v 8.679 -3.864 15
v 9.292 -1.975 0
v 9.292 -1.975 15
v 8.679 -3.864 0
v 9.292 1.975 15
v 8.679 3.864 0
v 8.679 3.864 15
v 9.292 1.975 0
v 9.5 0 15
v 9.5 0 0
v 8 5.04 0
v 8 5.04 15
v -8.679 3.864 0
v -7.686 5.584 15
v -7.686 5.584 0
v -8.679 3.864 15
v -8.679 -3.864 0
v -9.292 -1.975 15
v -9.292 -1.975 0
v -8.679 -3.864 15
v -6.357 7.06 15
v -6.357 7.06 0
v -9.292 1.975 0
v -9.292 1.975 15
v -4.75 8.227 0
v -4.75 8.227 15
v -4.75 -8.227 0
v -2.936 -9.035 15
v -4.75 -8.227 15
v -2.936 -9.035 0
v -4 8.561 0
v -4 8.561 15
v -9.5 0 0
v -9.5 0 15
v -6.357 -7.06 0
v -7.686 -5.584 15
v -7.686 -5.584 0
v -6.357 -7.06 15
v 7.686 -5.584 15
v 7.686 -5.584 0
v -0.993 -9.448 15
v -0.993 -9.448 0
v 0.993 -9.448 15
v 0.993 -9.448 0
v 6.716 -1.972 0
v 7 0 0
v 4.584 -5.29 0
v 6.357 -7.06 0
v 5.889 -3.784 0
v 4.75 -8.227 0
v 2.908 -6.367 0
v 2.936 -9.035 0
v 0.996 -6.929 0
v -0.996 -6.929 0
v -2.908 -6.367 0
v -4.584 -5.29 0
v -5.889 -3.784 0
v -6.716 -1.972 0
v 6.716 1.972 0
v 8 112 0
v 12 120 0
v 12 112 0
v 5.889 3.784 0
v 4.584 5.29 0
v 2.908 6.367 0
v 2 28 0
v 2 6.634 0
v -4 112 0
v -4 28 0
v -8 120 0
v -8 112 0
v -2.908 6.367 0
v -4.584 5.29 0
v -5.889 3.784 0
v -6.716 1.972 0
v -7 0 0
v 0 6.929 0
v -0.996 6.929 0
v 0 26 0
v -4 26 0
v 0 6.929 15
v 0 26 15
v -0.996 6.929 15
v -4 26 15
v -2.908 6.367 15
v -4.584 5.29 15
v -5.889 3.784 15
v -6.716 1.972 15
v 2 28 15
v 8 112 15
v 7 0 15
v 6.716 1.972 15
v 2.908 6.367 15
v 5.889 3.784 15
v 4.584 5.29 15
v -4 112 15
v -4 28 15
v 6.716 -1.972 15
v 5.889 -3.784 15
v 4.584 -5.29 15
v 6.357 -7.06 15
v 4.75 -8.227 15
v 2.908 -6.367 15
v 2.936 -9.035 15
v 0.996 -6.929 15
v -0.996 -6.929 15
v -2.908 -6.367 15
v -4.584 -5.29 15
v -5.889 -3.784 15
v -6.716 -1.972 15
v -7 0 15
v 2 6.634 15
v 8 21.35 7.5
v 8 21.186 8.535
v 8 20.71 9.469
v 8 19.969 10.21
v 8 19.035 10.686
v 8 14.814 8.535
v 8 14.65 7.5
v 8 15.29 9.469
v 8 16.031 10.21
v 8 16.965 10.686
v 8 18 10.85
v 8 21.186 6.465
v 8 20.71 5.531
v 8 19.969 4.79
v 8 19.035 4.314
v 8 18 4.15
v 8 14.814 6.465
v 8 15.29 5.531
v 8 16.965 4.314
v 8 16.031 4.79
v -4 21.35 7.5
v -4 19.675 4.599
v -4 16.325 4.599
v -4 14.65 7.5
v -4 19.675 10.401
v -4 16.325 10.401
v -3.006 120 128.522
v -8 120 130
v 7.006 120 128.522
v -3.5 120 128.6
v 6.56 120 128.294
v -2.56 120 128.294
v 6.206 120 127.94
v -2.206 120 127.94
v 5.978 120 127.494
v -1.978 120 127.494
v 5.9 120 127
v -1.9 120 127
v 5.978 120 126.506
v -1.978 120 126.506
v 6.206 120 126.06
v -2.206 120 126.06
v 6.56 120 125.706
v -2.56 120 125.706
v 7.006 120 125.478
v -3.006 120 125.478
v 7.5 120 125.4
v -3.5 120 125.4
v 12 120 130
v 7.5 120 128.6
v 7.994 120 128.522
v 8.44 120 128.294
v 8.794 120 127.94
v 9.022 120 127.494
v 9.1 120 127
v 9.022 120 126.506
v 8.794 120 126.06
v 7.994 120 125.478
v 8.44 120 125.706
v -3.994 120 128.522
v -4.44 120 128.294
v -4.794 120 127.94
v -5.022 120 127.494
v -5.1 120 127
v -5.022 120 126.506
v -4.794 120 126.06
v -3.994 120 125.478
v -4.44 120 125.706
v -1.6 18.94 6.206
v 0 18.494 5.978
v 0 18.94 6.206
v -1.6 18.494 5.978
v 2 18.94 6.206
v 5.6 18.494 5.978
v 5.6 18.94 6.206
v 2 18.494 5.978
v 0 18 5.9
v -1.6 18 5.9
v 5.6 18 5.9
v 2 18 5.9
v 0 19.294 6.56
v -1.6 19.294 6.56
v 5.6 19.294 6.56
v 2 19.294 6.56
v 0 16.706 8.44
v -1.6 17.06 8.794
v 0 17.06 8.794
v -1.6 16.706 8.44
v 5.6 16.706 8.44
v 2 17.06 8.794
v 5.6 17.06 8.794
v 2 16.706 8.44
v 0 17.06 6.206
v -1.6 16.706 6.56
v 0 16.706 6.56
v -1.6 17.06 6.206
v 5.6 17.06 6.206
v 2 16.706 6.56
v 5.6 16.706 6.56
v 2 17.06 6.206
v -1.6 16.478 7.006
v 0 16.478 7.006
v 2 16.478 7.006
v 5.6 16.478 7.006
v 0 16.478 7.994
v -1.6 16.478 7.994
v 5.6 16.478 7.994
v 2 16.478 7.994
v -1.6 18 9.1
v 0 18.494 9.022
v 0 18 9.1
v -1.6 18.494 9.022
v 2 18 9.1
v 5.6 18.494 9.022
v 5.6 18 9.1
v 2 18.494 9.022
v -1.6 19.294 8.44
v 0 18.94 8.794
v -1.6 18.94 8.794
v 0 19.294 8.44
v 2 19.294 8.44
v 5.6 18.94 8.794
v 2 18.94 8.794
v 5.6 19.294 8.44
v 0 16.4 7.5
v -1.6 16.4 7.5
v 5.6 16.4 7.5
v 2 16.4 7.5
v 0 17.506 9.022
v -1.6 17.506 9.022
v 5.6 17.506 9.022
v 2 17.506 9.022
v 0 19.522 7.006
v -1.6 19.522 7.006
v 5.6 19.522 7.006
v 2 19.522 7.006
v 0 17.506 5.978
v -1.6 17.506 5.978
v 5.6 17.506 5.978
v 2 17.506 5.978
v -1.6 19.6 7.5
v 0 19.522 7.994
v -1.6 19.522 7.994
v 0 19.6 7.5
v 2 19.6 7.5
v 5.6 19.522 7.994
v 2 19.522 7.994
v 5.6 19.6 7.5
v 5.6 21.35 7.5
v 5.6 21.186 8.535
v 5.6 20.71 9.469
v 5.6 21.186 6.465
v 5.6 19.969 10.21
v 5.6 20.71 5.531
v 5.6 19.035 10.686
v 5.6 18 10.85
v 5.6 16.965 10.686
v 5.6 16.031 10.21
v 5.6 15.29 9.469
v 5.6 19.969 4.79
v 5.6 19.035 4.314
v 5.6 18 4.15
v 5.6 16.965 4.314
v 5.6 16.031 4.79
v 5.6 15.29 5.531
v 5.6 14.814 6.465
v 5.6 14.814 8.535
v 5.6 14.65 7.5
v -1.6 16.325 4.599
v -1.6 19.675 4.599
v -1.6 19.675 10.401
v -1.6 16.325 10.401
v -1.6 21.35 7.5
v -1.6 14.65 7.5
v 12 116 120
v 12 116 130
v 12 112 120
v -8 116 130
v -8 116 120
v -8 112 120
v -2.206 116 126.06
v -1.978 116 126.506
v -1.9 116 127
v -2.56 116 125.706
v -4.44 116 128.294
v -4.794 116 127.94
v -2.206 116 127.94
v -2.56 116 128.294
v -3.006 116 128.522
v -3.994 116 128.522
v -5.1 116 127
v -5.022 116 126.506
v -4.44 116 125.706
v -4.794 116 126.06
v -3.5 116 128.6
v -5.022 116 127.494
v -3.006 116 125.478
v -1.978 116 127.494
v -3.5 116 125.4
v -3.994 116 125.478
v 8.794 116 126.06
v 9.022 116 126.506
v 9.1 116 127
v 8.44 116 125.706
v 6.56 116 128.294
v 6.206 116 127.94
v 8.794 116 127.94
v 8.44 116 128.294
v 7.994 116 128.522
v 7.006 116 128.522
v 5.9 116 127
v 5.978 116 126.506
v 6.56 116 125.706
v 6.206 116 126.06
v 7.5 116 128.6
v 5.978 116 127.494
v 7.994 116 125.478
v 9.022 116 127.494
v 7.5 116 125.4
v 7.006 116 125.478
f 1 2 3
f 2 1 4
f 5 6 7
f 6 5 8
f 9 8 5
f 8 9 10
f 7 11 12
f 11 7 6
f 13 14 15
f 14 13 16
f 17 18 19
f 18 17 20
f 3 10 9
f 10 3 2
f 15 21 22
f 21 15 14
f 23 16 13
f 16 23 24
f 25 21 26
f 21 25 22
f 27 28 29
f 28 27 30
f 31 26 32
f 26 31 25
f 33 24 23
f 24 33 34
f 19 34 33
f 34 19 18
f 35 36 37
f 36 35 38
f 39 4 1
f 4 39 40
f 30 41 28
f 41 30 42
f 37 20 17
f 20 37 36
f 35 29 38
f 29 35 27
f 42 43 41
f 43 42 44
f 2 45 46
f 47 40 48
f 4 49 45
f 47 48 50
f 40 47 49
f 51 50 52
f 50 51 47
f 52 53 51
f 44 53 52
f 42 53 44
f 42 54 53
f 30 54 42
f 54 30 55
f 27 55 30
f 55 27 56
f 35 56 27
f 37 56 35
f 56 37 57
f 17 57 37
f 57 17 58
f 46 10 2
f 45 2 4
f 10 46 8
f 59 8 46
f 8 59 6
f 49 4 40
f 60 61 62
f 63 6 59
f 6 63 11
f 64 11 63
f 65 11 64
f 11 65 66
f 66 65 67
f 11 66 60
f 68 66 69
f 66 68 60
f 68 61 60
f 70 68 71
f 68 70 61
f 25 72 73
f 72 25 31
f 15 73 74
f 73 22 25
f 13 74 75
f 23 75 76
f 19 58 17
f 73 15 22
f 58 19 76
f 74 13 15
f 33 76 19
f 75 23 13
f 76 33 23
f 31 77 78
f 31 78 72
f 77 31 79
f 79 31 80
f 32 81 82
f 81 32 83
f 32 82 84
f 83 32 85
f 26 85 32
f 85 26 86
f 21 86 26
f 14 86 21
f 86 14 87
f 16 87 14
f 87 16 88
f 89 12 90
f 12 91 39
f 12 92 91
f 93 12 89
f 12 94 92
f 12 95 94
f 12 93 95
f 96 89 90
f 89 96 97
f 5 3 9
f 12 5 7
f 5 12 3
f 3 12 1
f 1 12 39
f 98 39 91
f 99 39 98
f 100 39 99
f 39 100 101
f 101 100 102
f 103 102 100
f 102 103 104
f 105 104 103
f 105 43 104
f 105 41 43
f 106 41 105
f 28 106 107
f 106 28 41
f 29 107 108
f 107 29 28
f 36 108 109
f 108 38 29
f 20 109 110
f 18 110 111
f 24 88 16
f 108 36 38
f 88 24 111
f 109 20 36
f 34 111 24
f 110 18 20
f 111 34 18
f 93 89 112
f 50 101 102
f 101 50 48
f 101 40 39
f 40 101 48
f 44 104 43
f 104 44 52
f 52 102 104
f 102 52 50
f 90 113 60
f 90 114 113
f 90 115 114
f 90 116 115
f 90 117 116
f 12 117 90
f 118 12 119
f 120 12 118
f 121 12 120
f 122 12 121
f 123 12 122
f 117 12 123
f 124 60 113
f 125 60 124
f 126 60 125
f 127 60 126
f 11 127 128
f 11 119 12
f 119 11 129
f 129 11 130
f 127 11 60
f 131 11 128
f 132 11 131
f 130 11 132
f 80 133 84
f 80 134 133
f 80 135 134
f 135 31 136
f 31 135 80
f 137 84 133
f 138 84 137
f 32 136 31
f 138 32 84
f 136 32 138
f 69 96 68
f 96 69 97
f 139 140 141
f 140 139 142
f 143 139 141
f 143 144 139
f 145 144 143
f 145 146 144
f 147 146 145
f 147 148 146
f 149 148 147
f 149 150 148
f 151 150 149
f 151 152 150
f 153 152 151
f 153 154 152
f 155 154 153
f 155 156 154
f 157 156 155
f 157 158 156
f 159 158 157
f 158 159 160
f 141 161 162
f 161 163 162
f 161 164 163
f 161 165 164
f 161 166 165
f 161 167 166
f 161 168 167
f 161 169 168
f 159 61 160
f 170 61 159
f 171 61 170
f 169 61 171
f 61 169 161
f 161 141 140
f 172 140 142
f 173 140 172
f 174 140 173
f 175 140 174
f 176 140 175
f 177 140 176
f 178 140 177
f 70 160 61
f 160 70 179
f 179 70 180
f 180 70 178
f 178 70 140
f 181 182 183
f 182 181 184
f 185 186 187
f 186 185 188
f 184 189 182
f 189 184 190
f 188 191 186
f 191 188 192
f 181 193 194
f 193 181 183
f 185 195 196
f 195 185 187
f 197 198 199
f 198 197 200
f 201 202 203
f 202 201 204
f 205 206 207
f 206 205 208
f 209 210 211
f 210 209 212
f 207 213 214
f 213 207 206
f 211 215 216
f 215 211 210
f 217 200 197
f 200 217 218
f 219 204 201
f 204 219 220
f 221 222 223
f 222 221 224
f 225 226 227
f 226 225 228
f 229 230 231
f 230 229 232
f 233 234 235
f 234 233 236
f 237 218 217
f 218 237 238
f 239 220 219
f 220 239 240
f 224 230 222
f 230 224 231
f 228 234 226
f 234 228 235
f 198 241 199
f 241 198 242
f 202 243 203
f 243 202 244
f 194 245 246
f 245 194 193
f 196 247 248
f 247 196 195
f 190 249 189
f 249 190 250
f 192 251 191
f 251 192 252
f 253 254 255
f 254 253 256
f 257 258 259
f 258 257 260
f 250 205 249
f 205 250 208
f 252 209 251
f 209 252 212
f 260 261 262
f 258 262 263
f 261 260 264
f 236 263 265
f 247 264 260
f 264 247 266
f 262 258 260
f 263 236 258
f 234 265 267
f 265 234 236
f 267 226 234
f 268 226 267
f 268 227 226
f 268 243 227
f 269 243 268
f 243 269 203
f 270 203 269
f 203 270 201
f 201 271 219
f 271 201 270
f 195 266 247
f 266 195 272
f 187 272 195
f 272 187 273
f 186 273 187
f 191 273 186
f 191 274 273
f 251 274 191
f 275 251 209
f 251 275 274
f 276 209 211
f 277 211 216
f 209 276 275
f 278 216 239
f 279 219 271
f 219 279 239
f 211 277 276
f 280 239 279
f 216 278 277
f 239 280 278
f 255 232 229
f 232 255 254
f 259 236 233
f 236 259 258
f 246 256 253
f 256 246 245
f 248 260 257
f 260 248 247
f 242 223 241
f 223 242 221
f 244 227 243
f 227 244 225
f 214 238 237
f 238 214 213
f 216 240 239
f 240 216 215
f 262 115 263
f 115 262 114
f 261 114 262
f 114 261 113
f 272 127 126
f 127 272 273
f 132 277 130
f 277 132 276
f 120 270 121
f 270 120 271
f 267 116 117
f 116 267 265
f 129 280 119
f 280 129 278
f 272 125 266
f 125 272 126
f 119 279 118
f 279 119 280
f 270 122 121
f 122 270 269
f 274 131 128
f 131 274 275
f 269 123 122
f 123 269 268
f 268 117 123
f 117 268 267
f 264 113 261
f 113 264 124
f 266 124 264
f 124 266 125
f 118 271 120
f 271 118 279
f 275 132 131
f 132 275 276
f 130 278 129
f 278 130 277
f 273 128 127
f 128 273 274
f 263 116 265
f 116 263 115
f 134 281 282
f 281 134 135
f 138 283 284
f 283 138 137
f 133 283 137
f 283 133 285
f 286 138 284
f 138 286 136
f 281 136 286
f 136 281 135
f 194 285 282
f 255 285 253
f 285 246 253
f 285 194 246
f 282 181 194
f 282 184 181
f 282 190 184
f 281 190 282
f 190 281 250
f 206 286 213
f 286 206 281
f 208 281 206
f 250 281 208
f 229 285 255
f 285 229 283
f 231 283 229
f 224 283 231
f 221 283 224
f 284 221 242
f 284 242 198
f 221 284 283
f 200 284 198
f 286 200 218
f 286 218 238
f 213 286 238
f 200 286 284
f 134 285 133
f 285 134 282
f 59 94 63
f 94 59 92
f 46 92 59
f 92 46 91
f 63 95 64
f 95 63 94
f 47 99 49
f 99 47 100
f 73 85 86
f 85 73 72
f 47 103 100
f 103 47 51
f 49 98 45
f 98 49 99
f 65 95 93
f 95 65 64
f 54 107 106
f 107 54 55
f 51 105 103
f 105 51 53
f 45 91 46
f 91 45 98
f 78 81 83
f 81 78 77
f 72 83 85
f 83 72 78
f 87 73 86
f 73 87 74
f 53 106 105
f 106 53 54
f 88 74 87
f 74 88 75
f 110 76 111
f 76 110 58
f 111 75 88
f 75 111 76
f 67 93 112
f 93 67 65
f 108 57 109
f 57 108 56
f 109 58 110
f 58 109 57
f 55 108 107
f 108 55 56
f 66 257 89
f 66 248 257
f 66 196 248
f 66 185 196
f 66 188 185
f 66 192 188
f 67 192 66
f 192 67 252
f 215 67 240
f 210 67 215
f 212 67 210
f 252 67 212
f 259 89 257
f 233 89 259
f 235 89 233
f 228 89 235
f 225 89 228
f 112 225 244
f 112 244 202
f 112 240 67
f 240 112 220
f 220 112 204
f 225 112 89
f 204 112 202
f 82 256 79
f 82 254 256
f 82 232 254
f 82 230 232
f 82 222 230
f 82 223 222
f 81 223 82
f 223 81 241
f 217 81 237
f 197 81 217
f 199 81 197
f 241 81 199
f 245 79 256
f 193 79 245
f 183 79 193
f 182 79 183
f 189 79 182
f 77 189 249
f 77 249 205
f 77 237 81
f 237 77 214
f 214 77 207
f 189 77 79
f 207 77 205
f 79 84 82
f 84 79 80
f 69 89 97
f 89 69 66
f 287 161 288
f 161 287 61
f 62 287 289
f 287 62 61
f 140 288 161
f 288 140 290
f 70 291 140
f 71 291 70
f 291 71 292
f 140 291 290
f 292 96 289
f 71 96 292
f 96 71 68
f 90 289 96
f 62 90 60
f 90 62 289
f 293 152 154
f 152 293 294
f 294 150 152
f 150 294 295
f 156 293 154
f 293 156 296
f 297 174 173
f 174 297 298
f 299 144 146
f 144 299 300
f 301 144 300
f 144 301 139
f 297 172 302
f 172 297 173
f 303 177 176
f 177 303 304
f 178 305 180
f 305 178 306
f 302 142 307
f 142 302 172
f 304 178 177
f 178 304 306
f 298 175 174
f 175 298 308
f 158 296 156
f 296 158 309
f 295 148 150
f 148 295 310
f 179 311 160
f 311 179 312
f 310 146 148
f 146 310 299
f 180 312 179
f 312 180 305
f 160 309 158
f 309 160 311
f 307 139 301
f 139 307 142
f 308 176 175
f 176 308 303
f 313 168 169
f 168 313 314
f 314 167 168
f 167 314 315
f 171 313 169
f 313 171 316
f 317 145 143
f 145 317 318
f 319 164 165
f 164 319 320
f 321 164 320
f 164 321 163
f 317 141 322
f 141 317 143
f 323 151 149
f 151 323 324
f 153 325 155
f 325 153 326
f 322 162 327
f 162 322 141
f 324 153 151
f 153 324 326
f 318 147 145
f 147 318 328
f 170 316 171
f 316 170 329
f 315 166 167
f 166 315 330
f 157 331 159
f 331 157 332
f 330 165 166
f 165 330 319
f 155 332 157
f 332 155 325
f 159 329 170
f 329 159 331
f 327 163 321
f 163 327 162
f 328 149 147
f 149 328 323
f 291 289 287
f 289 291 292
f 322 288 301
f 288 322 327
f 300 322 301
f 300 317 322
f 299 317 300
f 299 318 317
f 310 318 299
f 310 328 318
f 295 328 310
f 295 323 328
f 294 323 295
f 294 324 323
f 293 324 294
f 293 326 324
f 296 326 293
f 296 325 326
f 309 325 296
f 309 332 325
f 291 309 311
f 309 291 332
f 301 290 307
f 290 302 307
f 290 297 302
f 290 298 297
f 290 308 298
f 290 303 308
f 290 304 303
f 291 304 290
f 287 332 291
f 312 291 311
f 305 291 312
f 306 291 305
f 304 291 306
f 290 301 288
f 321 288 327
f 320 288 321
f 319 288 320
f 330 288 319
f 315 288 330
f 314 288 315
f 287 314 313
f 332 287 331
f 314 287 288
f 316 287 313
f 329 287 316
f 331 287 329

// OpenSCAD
// file: ../libs/hardware-recess.scad
/*
 * A library to make capture holes in material for M3 & M5 hardware and some
 * common mounting patterns.
 * Copyright 2021 Alex Volkov <alex@flamy.ca>
 *
 * Project URL
 * https://github.com/avolkov/openscad-designs
 *
 * License: Attribution-ShareAlike 4.0 International (CC BY-SA)
 * https://creativecommons.org/licenses/by-sa/4.0/
 *
 * Version 0.1 2021-04-05 Initial publication
 */

 // Common mounting patterns
ear_thick=8;
stacked_len = ear_thick*3;
screw_mount_space = 20;
screw_mount_offset =7;
total_len = stacked_len + screw_mount_space*2;
mounting_diff = 8;


//Globals for hardware diameters
M3_THREAD_RAD = 1.5;
M5_THREAD_RAD = 2.6;


m3_nut_trap_d = 6.7;
m3_nut_thick= 2.4;

//M3 fastener values
m3_bolt_head_d = 5.6;
m3_bolt_thick = 3.2;

//M5 fastener values
m5_nut_thick = 4;
m5_locknut_thick = 5;
nut_trap_d = 9.7;
bolt_head_d = 8.6;
m5_bolt_head_d = bolt_head_d;


module bolt_nut(hole_len, bolt_d, flip=false){
    /*
    Create a model for a hole with bolt end on one end and nut hole on the other end.
    Note, this functions doesn't subtract the model it only makes the model

    :hole_len: total length of the hole
    :bolt_d: diameter of a blot
    :flip: flip the side with bolt recess
    */
    // currently only implemented for 3mm
    if (flip){
        hole_w_end(hole_len, m3_nut_thick, "hex", bolt_d);
        translate([0,0, hole_len]){
            rotate([180, 0, 0]){
                hole_w_end(hole_len, m3_bolt_thick, "round", bolt_d);
            }
        }
    } else {
        hole_w_end(hole_len, m3_bolt_thick, "round", bolt_d);
        translate([0,0, hole_len]){
            rotate([180, 0, 0]){
                hole_w_end(hole_len, m3_nut_thick, "hex", bolt_d);
            }
        }
    }
}


module hole_w_end(hole_len, trap_height, type, bolt_d, flip=false){
    /*
    Make a hole with an end for bolt or a nut.
    This is a more generic functions replacing m5_ hole-making functions.

    :bolt_d: bolt diameter, i.e. 3, 5 mm
    :type: type of the head hole: 'none', 'hex', 'round
    */
    if (type != "none"){
        cylinder(h=hole_len-trap_height, d=bolt_d, $fn=20);
        if (flip){
            m_recess(trap_height, type, bolt_d);
            translate([0,0,trap_height])
                cylinder(h=hole_len-trap_height, d=bolt_d, $fn=20);

        } else {
                translate([0,0, hole_len - trap_height])
                    m_recess(trap_height, type, bolt_d);
        }
    } else {
        cylinder(h=hole_len, d=bolt_d);
    }
}

module m_recess(length, end_type, bolt_d) {
    /*
    Create nut or bolt capture hole

    :height: length of a mounting hole, including end-mounting hardware
    :end_type: type of the head hole: 'none', 'hex', 'round
    :bolt_d: bolt diameter, i.e. 3, 5 mm
    */
    if (bolt_d >= 3 && bolt_d <= 4){
        //M3
        make_recess(length, end_type, m3_nut_trap_d);
    } else if (bolt_d >= 5 && bolt_d <= 6){
        // M5
        make_recess(length, end_type, nut_trap_d);
    }

}

module make_recess(height, end_type, trap_d){
    /*
    Make recess to capture
    */
    rotate([0, 0,90]){
        if (end_type == "hex"){
            cylinder(h=height, d=trap_d, $fn=6);
        } else if (end_type == "round"){
            cylinder(h=height, d=trap_d, $fn=20);
        }
    }
}


//Functions specific to M5 size,
// TODO rewrite as hole_w_end m_recess
module m5_recess(height, end_type) {
    // nut/bolt capture hole
    rotate([0, 0,90]){
        if (end_type == "hex"){
            cylinder(h=height, d=nut_trap_d, $fn=6);
        } else if (end_type == "round"){
            cylinder(h=height, d=nut_trap_d, $fn=20);
        }
    }
}



module m5_hole_w_end(hole_len, trap_height, type){
    //Given hole lenght and trap height create a nut trap hole
    if (type != "none"){
        cylinder(h=hole_len-trap_height, d=5.3, $fn=20); // M5 hole;
            translate([0,0, hole_len-trap_height])
                m5_recess(trap_height, type);
    } else {
        cylinder(h=hole_len, d=5.3); // M5 hole;
    }
}
module m5_hole_w_ends(hole_len, nut_extra=0){
    m5_hole_w_end(hole_len, m5_nut_thick, "round");
    rotate([0, 180, 0])
        translate([0, 0, - hole_len])
            m5_hole_w_end(hole_len, m5_nut_thick + nut_extra, "hex");
}

module m3_hole_w_ends(hole_len, nut_extra=0){
    hole_w_end(hole_len, m3_nut_thick, "round", m3_bolt_thick);
    hole_w_end(hole_len, m3_nut_thick, "hex", m3_bolt_thick, flip=true);
}

module set_mounting_hole(x_offset, y_offset, thickness, nut_height, end_type){
    /*
    Make a hole in an existing material
    end_type: one of hex, round, none
    */
    translate([x_offset, y_offset, 0]){
        m5_hole_w_end(thickness, nut_height, end_type);
    }
}

module m5_thread(height){
    cylinder(h=height, r1=M5_THREAD_RAD, r2=M5_THREAD_RAD, center=true, $fn=16);
}

module m3_thread(height){
    cylinder(h=height, r1=M3_THREAD_RAD, r2=M3_THREAD_RAD, center=true, $fn=16);
}

module m3_square_nut(depth, height){
    translate([0,0,1])
        cylinder(
        h=height, r1=M3_THREAD_RAD, r2=M3_THREAD_RAD, center=true, $fn=16);

    m_recess(m3_nut_thick, "hex",3);
    translate([0,0,-1])
        cylinder(
            h=depth, r1=M3_THREAD_RAD, r2=M3_THREAD_RAD, center=true, $fn=16);
}



//Mounting Patterns

module mounting_holes_2(fastener_len, nut_height, end_type){
    /* Two-hole mounting pattern for M5 bolts*/
    width_offsetn = 16;
    set_mounting_hole(
        screw_mount_offset,
        width_offset + mounting_diff,
        fastener_len,
        nut_height,
        end_type);

    set_mounting_hole(
        total_len - screw_mount_offset,
        width_offset + mounting_diff,
        fastener_len,
        nut_height,
        end_type);


 }

module mounting_holes(fastener_len, nut_height, end_type){
    /*Four-hole mounting pattern for M5 bolts*/
    width_offset = 16;
    set_mounting_hole(
        screw_mount_offset,
        width_offset + mounting_diff,
        fastener_len,
        nut_height,
        end_type);

    set_mounting_hole(
        screw_mount_offset,
        width_offset - mounting_diff,
        fastener_len,
        nut_height,
        end_type);

    // Side towards the end
    set_mounting_hole(
        total_len - screw_mount_offset,
        width_offset + mounting_diff,
        fastener_len,
        nut_height,
        end_type);

    set_mounting_hole(
        total_len - screw_mount_offset,
        width_offset - mounting_diff,
        fastener_len,
        nut_height,
        end_type);
}
// main file
include <../libs/hardware-recess.scad>;

/*
 * Adapter for Simple Microphone Pop filter -- https://www.thingiverse.com/thing:1108999
 * and Ammon MS-12 Mini Foldable Desktop Microphone Stand
 *
 * Project URL
 * https://github.com/avolkov/openscad-designs/pop-filter-holder
 *
 * Copyright 2021 Alex Volkov <alex@flamy.ca>
 * License: Attribution-ShareAlike 4.0 International (CC BY-SA)
 * https://creativecommons.org/licenses/by-sa/4.0/
 *
 * Version 1.0 2021-04-05 Initial publication
 */

MOUNT_H = 15;
MOUNT_W = 12;

module tube_mount(lock_d, mount_h, mount_cube_len){
    /*
        Add a tightening mout around the tube of a specified diameter
        lock_d -- locking diameter of a tube
        mount_h -- mount height (height of the part)
        mount_cube_len -- length of a joining cube
    */
    
    mount_w = MOUNT_W;
    difference() {
        union(){
            cylinder(d=lock_d+5, h=mount_h);
            translate([-4, 0,0])cube([mount_w,mount_cube_len,mount_h]);
        }
        cylinder(d=lock_d, h=mount_h);
        // cut to tighten the round thingy
        translate([0, 2, 0])
            cube([2,25,mount_h]);
        //Cut on the right
        translate([2, 26, 0])
            rotate([0,0,90])
                cube([2,10,mount_h]);
        //recess for the bolt
        translate([-4, 18, mount_h/2])
            rotate([0, 90, 0])
                m3_hole_w_ends(mount_w);
    }
}

module base_model(){
    difference(){
        tube_mount(14, MOUNT_H, 120);
    }
    translate([-8, 112, 0])
        cube([20, 8, 130]);
    
}

module pop_filter_mount_points() {
    // Mount points for Simple Microphone Pop filter
    cube([20, 4, 10]);
    translate([4.5, 0, 7]){
        rotate([270, 0, 0])
            m3_hole_w_ends(20);
    }
    translate([15.5, 0, 7]){
        rotate([270, 0, 0])
            m3_hole_w_ends(20);
    }
}

module base_with_mounts(){
    // Add mounting points by subtracting material from base_model
    difference () {
        base_model();
        translate([-8, 112, 120]){
            pop_filter_mount_points();
        }
    }
}

module dummy_adjust_tolerances() {
    /*
        dummy part to test tolerances without printing the whole model
        usually disabled
    */
    difference() {
        cube([20, 8, 20]);
        cube([20, 4, 10]);
        translate([4.5, -3, 4.5]){
            rotate([270, 0, 0]) m3_hole_w_ends(20);
        }

        translate([15.5, -3, 4.5]){
            rotate([270, 0, 0]) m3_hole_w_ends(20);
        }
    }
}

base_with_mounts();
